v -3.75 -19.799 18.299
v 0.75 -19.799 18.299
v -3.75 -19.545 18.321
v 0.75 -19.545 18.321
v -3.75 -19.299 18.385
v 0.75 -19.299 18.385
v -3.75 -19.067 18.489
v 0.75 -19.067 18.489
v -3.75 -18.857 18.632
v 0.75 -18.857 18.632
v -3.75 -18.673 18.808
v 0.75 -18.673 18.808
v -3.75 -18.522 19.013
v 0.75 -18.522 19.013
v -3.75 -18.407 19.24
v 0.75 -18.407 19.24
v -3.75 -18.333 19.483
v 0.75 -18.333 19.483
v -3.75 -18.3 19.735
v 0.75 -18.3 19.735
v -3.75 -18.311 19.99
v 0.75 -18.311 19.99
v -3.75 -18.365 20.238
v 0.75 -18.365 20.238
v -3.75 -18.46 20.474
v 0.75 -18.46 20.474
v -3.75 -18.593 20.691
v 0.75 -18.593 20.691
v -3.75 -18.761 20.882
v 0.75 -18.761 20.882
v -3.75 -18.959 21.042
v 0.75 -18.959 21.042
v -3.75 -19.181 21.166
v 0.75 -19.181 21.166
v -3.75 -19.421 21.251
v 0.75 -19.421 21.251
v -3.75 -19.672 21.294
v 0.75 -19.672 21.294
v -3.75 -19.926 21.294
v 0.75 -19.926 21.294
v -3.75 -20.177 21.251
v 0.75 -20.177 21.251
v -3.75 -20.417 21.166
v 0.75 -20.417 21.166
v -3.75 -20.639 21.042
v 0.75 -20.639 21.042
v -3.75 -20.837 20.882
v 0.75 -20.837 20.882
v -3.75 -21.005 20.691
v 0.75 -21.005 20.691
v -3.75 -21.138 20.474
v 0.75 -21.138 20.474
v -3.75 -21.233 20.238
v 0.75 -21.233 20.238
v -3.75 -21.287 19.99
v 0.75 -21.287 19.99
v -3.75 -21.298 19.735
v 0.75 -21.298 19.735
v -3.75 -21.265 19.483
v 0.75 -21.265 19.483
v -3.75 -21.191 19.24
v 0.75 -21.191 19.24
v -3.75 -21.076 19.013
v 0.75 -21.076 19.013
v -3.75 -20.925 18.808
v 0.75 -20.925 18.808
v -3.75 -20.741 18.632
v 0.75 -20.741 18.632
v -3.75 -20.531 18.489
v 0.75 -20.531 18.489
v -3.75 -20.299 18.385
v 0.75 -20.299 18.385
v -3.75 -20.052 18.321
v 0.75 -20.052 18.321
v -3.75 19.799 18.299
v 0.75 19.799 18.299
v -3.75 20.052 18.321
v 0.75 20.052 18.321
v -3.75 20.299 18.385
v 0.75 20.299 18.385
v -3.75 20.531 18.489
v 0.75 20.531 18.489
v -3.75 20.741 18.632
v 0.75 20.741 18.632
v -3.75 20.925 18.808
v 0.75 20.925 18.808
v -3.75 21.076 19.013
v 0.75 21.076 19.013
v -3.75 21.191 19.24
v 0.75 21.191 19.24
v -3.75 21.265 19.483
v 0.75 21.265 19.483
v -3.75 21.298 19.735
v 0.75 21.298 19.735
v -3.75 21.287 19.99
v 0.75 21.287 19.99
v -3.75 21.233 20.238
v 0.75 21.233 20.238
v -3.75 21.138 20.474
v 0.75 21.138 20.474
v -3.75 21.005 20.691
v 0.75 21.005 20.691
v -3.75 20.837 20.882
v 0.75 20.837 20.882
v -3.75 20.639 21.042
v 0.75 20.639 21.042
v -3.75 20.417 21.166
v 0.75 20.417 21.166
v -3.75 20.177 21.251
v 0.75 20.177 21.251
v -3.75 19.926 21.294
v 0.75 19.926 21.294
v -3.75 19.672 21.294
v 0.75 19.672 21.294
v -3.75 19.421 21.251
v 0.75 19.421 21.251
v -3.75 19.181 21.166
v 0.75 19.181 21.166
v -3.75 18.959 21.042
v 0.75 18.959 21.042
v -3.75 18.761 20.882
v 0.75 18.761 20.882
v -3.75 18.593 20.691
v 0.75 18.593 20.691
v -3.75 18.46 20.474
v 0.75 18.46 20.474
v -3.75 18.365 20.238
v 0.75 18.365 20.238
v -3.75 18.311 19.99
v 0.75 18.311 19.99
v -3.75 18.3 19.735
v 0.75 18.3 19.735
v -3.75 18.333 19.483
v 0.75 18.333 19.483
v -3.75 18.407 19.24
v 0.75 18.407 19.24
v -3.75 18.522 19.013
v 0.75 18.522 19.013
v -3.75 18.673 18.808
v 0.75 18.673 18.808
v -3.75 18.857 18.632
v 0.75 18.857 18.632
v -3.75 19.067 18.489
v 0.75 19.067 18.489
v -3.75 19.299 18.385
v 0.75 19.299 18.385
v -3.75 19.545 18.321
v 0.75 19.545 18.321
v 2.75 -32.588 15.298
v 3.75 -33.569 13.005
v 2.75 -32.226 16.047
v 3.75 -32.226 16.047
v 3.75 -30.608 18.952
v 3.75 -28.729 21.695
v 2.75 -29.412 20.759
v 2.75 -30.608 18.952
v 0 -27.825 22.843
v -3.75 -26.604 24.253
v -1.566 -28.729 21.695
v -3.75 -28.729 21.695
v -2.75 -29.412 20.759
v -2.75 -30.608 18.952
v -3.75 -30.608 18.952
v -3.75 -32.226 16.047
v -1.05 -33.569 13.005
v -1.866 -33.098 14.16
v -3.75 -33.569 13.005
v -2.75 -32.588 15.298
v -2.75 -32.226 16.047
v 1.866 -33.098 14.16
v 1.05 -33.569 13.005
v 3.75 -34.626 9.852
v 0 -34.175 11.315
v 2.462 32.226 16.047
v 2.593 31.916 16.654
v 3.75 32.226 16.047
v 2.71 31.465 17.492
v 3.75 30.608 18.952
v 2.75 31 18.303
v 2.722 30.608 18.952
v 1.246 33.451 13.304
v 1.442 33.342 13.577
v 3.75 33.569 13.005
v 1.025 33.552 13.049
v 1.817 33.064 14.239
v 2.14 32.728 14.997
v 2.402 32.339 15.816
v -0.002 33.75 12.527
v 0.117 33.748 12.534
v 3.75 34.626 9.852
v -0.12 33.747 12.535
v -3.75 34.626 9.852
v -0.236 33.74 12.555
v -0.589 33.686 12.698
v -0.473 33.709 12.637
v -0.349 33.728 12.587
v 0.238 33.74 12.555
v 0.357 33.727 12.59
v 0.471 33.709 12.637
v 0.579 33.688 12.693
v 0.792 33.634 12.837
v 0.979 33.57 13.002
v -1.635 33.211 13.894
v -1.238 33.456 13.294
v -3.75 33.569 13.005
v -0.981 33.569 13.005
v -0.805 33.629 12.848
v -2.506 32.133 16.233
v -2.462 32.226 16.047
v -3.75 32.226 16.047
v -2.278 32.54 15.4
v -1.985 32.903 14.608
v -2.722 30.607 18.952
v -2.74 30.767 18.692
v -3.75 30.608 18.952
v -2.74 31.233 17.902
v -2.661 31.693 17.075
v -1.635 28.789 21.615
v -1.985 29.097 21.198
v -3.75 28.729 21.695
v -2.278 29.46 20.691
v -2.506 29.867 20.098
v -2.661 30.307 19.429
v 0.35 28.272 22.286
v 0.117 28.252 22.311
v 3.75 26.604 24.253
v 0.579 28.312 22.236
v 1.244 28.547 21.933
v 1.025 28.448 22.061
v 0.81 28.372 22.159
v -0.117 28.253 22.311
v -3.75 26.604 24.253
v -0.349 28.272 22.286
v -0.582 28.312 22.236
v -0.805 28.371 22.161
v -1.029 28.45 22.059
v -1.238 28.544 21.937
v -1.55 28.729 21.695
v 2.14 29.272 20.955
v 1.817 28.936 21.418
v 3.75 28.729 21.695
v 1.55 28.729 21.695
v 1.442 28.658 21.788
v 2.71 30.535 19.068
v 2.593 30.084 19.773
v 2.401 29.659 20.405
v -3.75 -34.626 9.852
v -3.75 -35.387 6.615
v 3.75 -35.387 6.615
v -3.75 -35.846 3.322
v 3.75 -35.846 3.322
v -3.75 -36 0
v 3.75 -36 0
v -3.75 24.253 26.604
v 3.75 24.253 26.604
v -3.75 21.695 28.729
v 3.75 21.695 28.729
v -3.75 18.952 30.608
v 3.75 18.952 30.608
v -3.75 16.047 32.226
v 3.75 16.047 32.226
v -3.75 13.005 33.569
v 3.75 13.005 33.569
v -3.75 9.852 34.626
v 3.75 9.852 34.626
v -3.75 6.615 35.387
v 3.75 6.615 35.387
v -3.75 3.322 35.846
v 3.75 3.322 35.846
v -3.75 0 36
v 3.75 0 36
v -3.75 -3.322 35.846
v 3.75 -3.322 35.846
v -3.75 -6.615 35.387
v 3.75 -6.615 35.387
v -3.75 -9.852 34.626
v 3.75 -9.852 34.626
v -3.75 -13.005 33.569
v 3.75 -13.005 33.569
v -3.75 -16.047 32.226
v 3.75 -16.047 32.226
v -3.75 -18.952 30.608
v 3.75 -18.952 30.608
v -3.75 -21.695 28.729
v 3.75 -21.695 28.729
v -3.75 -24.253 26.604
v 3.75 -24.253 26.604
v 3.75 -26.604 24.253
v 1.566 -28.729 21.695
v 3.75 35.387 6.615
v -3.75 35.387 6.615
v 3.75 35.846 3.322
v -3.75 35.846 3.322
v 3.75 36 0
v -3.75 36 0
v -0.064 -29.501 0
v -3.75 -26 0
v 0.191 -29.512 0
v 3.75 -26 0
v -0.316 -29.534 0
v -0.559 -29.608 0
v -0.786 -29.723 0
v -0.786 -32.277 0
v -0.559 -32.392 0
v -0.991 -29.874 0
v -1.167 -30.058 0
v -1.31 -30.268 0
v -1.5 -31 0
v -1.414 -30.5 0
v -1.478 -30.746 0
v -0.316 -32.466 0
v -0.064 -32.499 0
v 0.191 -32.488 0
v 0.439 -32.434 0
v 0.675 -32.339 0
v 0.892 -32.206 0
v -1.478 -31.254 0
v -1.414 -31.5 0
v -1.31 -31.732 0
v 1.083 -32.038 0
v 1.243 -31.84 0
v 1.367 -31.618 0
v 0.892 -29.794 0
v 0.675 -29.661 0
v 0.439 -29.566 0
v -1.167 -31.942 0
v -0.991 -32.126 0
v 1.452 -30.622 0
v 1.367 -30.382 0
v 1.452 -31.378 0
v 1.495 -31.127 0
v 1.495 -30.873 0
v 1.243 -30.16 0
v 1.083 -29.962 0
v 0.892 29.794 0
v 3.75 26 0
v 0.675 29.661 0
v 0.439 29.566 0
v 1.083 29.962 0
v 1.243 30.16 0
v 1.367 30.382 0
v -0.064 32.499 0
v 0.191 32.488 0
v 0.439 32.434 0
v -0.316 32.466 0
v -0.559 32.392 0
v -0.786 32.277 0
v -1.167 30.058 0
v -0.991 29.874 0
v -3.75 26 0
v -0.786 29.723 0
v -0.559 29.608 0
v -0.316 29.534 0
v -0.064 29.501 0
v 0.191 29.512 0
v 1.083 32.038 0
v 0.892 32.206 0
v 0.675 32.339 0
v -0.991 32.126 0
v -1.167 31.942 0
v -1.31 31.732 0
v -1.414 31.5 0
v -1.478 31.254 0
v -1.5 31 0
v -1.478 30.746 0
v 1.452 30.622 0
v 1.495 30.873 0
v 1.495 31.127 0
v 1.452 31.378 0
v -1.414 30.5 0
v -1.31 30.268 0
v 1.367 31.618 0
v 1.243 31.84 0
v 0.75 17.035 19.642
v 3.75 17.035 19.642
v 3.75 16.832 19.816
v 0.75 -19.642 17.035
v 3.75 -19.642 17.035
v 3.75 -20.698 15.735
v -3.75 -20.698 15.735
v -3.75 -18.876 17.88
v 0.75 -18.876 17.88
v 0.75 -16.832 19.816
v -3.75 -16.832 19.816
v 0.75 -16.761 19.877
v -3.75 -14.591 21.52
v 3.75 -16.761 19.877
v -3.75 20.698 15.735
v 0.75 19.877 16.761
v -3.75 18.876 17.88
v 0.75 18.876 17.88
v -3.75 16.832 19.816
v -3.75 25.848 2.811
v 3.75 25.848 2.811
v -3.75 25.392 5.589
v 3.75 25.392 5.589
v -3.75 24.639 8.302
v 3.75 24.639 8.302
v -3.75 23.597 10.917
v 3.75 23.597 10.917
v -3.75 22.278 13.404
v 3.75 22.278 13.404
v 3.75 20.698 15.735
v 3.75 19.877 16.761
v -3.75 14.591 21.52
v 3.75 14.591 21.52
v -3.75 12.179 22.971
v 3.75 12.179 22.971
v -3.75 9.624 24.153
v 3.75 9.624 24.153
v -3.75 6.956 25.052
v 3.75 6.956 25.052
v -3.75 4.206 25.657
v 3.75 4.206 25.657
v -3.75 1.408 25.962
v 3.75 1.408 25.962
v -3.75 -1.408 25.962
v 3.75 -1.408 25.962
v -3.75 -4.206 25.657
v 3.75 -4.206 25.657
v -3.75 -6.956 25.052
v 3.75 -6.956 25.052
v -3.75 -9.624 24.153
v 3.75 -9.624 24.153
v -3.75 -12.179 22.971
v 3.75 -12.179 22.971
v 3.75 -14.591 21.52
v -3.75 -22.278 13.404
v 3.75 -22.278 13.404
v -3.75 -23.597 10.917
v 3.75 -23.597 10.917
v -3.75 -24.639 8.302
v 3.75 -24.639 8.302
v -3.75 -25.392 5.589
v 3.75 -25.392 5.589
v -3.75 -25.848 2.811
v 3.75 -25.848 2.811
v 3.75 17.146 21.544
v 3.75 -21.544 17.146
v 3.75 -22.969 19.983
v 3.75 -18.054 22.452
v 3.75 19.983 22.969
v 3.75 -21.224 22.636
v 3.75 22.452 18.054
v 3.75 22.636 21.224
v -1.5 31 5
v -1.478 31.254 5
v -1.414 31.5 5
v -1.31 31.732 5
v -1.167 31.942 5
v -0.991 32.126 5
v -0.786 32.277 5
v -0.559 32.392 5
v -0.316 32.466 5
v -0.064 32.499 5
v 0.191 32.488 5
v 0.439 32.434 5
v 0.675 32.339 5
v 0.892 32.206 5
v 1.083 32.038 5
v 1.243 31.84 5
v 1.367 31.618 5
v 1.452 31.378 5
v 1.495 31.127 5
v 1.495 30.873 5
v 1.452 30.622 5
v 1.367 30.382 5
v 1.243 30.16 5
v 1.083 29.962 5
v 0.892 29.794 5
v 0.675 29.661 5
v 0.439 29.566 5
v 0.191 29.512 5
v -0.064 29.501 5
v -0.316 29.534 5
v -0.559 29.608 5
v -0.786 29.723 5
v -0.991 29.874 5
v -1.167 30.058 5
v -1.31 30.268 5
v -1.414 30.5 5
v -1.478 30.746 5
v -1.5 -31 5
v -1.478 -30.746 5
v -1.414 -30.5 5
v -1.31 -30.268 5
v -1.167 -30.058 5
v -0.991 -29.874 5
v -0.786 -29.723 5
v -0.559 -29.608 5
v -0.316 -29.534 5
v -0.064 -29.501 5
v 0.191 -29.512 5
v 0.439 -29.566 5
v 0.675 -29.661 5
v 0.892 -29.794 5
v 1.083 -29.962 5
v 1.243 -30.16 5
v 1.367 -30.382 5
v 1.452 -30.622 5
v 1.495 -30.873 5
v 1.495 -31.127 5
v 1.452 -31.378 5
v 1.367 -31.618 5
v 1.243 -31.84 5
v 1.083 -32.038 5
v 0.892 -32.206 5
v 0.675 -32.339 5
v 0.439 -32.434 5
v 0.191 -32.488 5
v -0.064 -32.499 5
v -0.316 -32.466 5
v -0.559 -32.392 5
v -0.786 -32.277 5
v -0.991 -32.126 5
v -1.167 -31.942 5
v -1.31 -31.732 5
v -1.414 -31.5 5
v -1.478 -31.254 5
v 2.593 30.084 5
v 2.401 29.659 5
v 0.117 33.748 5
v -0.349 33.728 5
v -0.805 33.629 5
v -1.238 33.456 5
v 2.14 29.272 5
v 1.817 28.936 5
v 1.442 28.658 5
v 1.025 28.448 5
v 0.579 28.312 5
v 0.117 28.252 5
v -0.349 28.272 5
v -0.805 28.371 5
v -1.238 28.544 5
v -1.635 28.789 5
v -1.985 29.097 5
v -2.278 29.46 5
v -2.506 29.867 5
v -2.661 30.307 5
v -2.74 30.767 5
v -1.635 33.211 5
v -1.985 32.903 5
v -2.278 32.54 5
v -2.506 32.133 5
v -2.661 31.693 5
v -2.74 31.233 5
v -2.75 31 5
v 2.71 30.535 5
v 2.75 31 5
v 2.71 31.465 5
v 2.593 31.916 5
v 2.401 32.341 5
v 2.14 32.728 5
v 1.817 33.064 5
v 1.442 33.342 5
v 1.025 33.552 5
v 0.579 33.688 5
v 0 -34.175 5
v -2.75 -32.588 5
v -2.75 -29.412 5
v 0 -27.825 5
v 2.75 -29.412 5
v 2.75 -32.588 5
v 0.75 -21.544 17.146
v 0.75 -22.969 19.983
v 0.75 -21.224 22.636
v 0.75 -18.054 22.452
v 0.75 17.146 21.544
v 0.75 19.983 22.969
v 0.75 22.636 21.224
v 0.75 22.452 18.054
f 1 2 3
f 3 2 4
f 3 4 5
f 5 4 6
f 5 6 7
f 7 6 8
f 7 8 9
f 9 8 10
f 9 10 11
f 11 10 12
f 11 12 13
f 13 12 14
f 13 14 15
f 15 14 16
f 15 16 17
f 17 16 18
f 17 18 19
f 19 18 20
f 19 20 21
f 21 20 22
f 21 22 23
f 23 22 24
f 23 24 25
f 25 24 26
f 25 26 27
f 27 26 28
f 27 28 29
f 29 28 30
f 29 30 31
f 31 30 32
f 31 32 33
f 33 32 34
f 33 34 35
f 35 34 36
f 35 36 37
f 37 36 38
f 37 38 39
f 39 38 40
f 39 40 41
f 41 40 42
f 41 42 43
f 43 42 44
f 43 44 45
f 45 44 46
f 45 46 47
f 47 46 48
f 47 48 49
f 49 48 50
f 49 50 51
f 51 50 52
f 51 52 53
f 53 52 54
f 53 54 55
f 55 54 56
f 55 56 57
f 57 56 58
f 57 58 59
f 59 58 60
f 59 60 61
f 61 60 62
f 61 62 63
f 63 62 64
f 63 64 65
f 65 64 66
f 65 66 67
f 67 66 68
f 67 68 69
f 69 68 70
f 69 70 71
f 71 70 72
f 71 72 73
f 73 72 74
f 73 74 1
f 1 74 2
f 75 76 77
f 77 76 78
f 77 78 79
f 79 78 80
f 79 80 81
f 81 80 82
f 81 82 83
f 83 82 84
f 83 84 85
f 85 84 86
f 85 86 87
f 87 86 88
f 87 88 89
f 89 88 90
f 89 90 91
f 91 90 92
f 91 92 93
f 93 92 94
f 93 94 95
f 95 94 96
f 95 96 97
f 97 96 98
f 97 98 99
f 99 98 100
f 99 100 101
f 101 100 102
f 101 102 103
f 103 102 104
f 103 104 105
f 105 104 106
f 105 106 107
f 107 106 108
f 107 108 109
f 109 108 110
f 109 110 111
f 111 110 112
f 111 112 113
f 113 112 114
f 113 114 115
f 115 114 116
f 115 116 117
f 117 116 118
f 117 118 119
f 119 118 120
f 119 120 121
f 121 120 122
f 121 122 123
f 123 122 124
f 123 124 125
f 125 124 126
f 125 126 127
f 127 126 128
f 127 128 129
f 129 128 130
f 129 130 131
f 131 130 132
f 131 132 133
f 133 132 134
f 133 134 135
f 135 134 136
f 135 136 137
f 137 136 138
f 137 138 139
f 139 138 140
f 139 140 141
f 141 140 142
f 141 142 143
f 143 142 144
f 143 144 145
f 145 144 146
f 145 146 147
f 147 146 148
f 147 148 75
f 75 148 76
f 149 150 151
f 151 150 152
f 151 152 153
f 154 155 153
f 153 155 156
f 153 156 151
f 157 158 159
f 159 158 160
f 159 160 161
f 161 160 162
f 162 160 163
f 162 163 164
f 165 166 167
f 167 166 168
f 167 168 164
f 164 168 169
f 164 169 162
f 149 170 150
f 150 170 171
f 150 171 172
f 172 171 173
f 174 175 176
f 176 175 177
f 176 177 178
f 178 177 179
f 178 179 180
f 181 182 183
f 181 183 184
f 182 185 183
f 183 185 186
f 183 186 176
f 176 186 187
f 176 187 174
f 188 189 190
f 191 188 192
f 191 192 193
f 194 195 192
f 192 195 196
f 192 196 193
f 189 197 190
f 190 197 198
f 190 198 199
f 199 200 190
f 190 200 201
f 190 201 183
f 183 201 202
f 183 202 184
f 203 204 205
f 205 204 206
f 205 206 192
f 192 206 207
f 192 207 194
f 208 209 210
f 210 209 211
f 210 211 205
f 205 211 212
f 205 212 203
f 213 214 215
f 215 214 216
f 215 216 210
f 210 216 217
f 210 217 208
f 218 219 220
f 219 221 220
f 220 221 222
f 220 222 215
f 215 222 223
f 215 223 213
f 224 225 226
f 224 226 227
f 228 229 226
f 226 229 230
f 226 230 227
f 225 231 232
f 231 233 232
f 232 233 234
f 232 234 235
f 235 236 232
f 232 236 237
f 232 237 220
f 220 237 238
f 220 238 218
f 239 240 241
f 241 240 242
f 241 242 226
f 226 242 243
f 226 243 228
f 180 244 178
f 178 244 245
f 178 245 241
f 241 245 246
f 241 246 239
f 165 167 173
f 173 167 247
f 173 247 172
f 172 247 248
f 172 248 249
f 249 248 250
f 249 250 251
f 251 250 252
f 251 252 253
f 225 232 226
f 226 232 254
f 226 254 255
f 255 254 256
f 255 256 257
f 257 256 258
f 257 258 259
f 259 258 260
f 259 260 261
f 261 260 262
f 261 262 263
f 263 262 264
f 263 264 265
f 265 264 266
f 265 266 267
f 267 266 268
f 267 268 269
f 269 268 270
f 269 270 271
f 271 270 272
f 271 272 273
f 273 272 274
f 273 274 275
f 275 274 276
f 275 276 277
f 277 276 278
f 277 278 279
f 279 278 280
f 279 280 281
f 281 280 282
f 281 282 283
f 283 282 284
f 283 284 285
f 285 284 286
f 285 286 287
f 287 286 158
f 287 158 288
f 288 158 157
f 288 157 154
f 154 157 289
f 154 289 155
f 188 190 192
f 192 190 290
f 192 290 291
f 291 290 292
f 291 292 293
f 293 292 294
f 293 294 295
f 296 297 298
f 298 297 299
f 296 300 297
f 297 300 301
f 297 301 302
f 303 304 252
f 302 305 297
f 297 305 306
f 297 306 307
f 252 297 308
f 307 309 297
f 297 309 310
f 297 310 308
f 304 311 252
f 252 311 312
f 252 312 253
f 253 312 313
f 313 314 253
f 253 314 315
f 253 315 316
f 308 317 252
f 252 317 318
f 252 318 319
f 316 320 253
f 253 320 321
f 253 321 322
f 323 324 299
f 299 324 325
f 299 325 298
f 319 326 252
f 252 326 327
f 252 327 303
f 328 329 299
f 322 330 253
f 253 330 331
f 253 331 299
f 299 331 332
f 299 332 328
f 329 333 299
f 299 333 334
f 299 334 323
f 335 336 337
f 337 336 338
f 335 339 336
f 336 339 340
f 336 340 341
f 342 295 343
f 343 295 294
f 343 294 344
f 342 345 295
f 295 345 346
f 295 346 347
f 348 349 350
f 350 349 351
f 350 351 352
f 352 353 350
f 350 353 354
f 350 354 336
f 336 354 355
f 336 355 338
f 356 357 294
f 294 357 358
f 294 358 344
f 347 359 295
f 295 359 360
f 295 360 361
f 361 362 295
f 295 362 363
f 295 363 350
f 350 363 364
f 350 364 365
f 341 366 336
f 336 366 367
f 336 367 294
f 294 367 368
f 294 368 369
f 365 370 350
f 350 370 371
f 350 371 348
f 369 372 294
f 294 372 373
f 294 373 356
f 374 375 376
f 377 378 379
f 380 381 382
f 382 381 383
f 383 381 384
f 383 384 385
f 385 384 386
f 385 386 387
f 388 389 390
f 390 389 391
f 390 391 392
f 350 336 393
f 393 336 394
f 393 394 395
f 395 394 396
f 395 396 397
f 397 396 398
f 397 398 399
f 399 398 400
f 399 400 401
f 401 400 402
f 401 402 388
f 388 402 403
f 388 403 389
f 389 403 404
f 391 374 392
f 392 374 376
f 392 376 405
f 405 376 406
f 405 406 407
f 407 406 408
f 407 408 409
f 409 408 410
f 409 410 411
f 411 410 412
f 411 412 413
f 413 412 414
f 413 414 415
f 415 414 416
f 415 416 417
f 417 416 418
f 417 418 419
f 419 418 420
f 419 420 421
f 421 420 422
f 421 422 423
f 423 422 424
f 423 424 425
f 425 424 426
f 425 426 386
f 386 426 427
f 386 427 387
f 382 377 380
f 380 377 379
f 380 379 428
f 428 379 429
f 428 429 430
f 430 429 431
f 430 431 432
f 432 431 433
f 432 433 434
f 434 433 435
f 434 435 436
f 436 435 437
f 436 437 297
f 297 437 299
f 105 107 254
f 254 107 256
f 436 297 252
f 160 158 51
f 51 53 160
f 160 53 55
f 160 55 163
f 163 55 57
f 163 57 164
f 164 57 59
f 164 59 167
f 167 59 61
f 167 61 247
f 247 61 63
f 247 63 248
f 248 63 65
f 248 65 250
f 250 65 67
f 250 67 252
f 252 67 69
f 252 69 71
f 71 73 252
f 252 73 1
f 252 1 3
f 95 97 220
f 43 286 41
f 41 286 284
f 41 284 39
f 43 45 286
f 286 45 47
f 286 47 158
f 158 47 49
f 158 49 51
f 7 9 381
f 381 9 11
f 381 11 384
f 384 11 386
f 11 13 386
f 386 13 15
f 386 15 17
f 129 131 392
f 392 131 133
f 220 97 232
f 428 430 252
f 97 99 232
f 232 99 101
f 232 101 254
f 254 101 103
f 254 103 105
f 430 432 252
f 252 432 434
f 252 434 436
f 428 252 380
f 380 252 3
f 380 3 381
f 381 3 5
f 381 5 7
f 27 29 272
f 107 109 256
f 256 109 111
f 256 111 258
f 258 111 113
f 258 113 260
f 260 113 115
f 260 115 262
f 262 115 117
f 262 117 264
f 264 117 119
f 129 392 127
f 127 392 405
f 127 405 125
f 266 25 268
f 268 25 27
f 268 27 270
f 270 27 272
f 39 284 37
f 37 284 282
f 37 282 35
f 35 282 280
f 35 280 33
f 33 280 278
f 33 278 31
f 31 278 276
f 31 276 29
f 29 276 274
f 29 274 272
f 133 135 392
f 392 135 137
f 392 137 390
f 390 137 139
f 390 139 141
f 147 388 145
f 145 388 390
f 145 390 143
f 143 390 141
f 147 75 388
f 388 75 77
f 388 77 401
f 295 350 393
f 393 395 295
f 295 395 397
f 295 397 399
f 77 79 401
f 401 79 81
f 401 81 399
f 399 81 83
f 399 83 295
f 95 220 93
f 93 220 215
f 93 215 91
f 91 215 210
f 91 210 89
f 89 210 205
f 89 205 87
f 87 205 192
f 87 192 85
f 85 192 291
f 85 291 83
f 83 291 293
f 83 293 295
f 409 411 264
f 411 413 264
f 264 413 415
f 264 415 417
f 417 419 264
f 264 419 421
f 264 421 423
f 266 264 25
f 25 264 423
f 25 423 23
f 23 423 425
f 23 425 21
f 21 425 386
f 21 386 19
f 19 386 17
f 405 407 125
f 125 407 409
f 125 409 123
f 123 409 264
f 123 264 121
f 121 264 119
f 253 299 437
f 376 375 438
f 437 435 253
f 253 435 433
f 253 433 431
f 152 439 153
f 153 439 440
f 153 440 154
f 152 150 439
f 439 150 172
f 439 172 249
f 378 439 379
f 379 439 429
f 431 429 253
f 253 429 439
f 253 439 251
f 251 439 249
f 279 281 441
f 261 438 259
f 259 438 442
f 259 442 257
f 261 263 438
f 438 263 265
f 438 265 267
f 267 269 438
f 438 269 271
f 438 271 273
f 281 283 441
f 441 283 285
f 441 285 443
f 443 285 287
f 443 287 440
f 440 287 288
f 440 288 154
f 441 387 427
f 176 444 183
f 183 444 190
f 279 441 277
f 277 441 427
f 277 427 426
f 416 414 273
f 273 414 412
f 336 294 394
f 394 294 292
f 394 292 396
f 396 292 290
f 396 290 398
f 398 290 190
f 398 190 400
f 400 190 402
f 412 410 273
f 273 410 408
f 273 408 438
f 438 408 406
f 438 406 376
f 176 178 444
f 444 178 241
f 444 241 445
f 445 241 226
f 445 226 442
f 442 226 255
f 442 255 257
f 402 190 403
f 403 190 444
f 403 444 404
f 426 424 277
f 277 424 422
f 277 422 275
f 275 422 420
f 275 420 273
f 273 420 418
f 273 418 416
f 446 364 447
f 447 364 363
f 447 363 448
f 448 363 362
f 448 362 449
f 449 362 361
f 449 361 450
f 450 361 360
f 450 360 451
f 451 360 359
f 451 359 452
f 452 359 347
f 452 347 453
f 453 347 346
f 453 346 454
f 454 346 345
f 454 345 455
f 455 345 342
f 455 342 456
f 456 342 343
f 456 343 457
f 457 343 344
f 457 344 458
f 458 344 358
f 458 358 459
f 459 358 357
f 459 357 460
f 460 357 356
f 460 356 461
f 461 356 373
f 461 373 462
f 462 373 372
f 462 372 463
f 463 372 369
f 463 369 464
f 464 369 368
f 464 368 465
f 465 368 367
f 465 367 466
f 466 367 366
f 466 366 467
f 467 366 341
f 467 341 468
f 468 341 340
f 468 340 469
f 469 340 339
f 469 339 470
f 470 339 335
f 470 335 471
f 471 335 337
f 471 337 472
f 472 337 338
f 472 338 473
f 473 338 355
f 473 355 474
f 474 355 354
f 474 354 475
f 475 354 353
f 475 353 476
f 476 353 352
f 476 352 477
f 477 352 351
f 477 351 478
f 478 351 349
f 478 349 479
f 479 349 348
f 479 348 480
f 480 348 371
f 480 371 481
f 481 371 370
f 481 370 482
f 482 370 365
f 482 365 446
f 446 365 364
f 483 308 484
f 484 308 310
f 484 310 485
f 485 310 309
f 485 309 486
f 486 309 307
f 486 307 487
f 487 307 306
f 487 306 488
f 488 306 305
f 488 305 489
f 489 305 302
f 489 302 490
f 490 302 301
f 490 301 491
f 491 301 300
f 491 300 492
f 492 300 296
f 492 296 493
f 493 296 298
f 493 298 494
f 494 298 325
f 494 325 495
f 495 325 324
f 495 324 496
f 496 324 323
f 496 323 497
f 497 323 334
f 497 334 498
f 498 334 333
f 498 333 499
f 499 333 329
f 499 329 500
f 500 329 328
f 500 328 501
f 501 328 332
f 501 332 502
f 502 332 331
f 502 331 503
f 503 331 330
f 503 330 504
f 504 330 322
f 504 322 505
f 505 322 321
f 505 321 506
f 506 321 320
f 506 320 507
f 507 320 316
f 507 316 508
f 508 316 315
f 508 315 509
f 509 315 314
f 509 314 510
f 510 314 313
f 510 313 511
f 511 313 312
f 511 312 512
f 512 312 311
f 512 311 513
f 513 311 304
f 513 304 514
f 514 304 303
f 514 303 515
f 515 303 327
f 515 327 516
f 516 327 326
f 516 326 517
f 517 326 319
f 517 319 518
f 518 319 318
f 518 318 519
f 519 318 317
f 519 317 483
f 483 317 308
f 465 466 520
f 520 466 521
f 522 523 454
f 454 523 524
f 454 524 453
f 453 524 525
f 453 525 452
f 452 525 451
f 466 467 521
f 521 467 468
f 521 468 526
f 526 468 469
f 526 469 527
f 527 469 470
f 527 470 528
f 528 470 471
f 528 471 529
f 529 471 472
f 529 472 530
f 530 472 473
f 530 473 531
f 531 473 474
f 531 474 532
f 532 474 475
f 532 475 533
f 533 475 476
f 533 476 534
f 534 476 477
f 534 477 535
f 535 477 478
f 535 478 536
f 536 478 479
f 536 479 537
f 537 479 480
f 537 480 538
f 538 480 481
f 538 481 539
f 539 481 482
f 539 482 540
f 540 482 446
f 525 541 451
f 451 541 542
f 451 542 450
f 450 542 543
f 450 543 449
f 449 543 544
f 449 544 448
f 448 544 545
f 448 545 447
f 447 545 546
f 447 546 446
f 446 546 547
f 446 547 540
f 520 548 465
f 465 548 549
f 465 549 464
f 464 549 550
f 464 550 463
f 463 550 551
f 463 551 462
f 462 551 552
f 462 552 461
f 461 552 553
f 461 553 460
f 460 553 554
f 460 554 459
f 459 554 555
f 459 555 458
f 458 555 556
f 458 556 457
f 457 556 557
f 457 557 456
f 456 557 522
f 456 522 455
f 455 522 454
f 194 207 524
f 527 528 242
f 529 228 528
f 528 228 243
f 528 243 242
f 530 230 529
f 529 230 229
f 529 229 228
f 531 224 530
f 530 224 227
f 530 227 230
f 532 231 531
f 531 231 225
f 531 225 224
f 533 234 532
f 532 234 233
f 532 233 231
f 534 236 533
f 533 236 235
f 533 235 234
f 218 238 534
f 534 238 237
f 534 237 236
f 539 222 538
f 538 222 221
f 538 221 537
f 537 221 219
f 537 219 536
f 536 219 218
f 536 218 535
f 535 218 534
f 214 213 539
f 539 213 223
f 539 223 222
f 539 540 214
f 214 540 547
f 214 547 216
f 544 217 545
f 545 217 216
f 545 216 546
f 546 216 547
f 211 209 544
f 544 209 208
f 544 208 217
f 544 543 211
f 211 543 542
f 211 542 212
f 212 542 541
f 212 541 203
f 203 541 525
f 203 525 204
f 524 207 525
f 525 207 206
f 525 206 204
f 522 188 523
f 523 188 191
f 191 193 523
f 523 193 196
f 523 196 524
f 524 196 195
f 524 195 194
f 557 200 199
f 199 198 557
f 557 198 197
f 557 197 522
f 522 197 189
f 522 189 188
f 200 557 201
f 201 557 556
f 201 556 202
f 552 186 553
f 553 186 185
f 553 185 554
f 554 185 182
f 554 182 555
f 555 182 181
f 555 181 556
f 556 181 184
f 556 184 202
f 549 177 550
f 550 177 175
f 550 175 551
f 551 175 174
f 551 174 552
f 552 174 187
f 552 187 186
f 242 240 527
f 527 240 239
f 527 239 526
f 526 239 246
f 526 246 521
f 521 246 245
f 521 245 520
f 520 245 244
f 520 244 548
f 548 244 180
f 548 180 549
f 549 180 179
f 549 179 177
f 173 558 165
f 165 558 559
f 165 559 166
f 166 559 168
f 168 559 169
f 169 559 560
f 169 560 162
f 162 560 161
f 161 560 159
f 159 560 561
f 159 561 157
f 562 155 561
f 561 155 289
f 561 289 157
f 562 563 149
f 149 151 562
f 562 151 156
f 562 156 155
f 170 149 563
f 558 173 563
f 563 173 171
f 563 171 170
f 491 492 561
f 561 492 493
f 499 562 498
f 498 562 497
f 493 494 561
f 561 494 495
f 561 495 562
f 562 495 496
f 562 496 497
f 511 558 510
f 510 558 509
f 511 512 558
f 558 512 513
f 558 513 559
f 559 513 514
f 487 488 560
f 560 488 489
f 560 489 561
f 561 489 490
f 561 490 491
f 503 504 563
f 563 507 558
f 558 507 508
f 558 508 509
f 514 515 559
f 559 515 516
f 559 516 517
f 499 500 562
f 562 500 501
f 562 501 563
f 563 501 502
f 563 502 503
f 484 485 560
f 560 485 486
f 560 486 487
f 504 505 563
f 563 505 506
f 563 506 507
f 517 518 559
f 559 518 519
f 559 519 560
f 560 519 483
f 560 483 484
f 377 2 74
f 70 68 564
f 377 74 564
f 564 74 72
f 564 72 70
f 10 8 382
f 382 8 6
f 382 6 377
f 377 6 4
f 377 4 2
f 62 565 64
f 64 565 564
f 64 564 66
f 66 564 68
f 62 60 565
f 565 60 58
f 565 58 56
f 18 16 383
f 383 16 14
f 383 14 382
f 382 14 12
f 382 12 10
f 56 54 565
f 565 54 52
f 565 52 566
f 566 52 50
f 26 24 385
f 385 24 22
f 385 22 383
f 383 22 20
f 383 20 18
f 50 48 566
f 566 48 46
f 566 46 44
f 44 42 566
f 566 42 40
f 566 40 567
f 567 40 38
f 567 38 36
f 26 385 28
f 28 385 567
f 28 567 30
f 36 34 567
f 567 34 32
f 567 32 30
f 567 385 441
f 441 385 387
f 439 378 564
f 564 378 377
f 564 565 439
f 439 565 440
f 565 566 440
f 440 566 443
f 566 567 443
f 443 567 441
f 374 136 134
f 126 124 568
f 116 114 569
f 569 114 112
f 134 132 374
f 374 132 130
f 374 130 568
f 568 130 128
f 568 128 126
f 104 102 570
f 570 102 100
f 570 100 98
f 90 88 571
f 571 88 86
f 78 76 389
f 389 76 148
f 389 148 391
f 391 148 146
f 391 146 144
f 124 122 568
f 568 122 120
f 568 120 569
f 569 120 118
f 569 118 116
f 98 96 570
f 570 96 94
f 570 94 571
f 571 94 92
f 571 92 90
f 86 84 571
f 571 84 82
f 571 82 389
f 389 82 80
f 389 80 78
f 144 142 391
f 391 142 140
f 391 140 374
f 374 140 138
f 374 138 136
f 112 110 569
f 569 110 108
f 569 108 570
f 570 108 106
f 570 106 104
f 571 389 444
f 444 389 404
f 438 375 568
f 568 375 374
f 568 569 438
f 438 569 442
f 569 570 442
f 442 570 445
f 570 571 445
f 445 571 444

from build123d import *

# Parameters (mm, degrees)
BOSS_EXTRUDE1_DEPTH      = 3.75
BOSS_EXTRUDE1_DEPTH_BACK = 3.75
SKETCH1_R                = 1.5
SKETCH3_R                = 1.5
CUT_EXTRUDE1_DEPTH       = 25.5
SKETCH4_R                = 2.75
CUT_EXTRUDE2_DEPTH       = 25
CUT_EXTRUDE3_DEPTH       = 25
CUT_EXTRUDE4_DEPTH       = 3


with BuildPart() as part:
    # Sketch1 → Boss-Extrude1 (new, two sides: drawn at the far end of the back side and taken through both)
    with BuildSketch(Plane(origin=(0, 0, 0), x_dir=(0, 0, -1), z_dir=(1, 0, 0)).offset(-BOSS_EXTRUDE1_DEPTH_BACK)):
        with BuildLine():
            Line((0, 26), (0, 36))
            ThreePointArc((0, 36), (-36, 0), (0, -36))
            Line((0, -36), (0, -26))
            ThreePointArc((0, -26), (-24.020867845, -9.949769241), (-18.384776311, 18.384776311))
            ThreePointArc((-18.384776311, 18.384776311), (-9.949769241, 24.020867845), (0, 26))
        make_face()
        with Locations((-19.798989873, -19.798989873)):
            Circle(SKETCH1_R, mode=Mode.SUBTRACT)
        with BuildLine():
            ThreePointArc((-18.298989873, 19.798989873), (-18.413170574, 19.224964725), (-18.738329701, 18.738329701))
            ThreePointArc((-18.738329701, 18.738329701), (-21.184809172, 20.373015022), (-18.298989873, 19.798989873))
        make_face(mode=Mode.SUBTRACT)
    extrude(amount=BOSS_EXTRUDE1_DEPTH + BOSS_EXTRUDE1_DEPTH_BACK)

    # Sketch3 → Cut-Extrude1 (cut)
    with BuildSketch(Plane(origin=(0, 0, 0), x_dir=(-1, 0, 0), z_dir=(0, 0, -1))):
        with Locations((0, 31)):
            Circle(SKETCH3_R)
    cut_extrude1 = extrude(amount=-CUT_EXTRUDE1_DEPTH, mode=Mode.SUBTRACT)

    # Mirror1: Cut-Extrude1 across plane
    add(cut_extrude1.mirror(Plane.ZX), mode=Mode.SUBTRACT)

    # Sketch4 → Cut-Extrude2 (cut)
    with BuildSketch(Plane(origin=(0, 0, 30), x_dir=(-1, 0, 0), z_dir=(0, 0, -1))):
        with Locations((0, 31)):
            Circle(SKETCH4_R)
    extrude(amount=CUT_EXTRUDE2_DEPTH, mode=Mode.SUBTRACT)

    # Sketch5 → Cut-Extrude3 (cut)
    with BuildSketch(Plane(origin=(0, 0, 30), x_dir=(-1, 0, 0), z_dir=(0, 0, -1))):
        Polygon((2.75, -32.58771324), (2.75, -29.41228676), (0, -27.824573519), (-2.75, -29.41228676), (-2.75, -32.58771324), (0, -34.175426481), align=None)
    extrude(amount=CUT_EXTRUDE3_DEPTH, mode=Mode.SUBTRACT)

    # Sketch6 → Cut-Extrude4 (cut)
    with BuildSketch(Plane(origin=(3.75, 0, 0), x_dir=(0, 0, -1), z_dir=(1, 0, 0))):
        Polygon((-22.45221952, -18.054367916), (-22.636491632, -21.224443171), (-19.983261985, -22.969065128), (-17.145760226, -21.543611831), (-16.961488115, -18.373536576), (-19.614717761, -16.628914618), align=None)
        Polygon((-18.054367916, 22.45221952), (-21.224443171, 22.636491632), (-22.969065128, 19.983261985), (-21.543611831, 17.145760226), (-18.373536576, 16.961488115), (-16.628914618, 19.614717761), align=None)
        Polygon((18.054367916, -22.45221952), (21.224443171, -22.636491632), (22.969065128, -19.983261985), (21.543611831, -17.145760226), (18.373536576, -16.961488115), (16.628914618, -19.614717761), align=None)
        Polygon((22.45221952, 18.054367916), (22.636491632, 21.224443171), (19.983261985, 22.969065128), (17.145760226, 21.543611831), (16.961488115, 18.373536576), (19.614717761, 16.628914618), align=None)
    extrude(amount=-CUT_EXTRUDE4_DEPTH, mode=Mode.SUBTRACT)


solid = part.part
